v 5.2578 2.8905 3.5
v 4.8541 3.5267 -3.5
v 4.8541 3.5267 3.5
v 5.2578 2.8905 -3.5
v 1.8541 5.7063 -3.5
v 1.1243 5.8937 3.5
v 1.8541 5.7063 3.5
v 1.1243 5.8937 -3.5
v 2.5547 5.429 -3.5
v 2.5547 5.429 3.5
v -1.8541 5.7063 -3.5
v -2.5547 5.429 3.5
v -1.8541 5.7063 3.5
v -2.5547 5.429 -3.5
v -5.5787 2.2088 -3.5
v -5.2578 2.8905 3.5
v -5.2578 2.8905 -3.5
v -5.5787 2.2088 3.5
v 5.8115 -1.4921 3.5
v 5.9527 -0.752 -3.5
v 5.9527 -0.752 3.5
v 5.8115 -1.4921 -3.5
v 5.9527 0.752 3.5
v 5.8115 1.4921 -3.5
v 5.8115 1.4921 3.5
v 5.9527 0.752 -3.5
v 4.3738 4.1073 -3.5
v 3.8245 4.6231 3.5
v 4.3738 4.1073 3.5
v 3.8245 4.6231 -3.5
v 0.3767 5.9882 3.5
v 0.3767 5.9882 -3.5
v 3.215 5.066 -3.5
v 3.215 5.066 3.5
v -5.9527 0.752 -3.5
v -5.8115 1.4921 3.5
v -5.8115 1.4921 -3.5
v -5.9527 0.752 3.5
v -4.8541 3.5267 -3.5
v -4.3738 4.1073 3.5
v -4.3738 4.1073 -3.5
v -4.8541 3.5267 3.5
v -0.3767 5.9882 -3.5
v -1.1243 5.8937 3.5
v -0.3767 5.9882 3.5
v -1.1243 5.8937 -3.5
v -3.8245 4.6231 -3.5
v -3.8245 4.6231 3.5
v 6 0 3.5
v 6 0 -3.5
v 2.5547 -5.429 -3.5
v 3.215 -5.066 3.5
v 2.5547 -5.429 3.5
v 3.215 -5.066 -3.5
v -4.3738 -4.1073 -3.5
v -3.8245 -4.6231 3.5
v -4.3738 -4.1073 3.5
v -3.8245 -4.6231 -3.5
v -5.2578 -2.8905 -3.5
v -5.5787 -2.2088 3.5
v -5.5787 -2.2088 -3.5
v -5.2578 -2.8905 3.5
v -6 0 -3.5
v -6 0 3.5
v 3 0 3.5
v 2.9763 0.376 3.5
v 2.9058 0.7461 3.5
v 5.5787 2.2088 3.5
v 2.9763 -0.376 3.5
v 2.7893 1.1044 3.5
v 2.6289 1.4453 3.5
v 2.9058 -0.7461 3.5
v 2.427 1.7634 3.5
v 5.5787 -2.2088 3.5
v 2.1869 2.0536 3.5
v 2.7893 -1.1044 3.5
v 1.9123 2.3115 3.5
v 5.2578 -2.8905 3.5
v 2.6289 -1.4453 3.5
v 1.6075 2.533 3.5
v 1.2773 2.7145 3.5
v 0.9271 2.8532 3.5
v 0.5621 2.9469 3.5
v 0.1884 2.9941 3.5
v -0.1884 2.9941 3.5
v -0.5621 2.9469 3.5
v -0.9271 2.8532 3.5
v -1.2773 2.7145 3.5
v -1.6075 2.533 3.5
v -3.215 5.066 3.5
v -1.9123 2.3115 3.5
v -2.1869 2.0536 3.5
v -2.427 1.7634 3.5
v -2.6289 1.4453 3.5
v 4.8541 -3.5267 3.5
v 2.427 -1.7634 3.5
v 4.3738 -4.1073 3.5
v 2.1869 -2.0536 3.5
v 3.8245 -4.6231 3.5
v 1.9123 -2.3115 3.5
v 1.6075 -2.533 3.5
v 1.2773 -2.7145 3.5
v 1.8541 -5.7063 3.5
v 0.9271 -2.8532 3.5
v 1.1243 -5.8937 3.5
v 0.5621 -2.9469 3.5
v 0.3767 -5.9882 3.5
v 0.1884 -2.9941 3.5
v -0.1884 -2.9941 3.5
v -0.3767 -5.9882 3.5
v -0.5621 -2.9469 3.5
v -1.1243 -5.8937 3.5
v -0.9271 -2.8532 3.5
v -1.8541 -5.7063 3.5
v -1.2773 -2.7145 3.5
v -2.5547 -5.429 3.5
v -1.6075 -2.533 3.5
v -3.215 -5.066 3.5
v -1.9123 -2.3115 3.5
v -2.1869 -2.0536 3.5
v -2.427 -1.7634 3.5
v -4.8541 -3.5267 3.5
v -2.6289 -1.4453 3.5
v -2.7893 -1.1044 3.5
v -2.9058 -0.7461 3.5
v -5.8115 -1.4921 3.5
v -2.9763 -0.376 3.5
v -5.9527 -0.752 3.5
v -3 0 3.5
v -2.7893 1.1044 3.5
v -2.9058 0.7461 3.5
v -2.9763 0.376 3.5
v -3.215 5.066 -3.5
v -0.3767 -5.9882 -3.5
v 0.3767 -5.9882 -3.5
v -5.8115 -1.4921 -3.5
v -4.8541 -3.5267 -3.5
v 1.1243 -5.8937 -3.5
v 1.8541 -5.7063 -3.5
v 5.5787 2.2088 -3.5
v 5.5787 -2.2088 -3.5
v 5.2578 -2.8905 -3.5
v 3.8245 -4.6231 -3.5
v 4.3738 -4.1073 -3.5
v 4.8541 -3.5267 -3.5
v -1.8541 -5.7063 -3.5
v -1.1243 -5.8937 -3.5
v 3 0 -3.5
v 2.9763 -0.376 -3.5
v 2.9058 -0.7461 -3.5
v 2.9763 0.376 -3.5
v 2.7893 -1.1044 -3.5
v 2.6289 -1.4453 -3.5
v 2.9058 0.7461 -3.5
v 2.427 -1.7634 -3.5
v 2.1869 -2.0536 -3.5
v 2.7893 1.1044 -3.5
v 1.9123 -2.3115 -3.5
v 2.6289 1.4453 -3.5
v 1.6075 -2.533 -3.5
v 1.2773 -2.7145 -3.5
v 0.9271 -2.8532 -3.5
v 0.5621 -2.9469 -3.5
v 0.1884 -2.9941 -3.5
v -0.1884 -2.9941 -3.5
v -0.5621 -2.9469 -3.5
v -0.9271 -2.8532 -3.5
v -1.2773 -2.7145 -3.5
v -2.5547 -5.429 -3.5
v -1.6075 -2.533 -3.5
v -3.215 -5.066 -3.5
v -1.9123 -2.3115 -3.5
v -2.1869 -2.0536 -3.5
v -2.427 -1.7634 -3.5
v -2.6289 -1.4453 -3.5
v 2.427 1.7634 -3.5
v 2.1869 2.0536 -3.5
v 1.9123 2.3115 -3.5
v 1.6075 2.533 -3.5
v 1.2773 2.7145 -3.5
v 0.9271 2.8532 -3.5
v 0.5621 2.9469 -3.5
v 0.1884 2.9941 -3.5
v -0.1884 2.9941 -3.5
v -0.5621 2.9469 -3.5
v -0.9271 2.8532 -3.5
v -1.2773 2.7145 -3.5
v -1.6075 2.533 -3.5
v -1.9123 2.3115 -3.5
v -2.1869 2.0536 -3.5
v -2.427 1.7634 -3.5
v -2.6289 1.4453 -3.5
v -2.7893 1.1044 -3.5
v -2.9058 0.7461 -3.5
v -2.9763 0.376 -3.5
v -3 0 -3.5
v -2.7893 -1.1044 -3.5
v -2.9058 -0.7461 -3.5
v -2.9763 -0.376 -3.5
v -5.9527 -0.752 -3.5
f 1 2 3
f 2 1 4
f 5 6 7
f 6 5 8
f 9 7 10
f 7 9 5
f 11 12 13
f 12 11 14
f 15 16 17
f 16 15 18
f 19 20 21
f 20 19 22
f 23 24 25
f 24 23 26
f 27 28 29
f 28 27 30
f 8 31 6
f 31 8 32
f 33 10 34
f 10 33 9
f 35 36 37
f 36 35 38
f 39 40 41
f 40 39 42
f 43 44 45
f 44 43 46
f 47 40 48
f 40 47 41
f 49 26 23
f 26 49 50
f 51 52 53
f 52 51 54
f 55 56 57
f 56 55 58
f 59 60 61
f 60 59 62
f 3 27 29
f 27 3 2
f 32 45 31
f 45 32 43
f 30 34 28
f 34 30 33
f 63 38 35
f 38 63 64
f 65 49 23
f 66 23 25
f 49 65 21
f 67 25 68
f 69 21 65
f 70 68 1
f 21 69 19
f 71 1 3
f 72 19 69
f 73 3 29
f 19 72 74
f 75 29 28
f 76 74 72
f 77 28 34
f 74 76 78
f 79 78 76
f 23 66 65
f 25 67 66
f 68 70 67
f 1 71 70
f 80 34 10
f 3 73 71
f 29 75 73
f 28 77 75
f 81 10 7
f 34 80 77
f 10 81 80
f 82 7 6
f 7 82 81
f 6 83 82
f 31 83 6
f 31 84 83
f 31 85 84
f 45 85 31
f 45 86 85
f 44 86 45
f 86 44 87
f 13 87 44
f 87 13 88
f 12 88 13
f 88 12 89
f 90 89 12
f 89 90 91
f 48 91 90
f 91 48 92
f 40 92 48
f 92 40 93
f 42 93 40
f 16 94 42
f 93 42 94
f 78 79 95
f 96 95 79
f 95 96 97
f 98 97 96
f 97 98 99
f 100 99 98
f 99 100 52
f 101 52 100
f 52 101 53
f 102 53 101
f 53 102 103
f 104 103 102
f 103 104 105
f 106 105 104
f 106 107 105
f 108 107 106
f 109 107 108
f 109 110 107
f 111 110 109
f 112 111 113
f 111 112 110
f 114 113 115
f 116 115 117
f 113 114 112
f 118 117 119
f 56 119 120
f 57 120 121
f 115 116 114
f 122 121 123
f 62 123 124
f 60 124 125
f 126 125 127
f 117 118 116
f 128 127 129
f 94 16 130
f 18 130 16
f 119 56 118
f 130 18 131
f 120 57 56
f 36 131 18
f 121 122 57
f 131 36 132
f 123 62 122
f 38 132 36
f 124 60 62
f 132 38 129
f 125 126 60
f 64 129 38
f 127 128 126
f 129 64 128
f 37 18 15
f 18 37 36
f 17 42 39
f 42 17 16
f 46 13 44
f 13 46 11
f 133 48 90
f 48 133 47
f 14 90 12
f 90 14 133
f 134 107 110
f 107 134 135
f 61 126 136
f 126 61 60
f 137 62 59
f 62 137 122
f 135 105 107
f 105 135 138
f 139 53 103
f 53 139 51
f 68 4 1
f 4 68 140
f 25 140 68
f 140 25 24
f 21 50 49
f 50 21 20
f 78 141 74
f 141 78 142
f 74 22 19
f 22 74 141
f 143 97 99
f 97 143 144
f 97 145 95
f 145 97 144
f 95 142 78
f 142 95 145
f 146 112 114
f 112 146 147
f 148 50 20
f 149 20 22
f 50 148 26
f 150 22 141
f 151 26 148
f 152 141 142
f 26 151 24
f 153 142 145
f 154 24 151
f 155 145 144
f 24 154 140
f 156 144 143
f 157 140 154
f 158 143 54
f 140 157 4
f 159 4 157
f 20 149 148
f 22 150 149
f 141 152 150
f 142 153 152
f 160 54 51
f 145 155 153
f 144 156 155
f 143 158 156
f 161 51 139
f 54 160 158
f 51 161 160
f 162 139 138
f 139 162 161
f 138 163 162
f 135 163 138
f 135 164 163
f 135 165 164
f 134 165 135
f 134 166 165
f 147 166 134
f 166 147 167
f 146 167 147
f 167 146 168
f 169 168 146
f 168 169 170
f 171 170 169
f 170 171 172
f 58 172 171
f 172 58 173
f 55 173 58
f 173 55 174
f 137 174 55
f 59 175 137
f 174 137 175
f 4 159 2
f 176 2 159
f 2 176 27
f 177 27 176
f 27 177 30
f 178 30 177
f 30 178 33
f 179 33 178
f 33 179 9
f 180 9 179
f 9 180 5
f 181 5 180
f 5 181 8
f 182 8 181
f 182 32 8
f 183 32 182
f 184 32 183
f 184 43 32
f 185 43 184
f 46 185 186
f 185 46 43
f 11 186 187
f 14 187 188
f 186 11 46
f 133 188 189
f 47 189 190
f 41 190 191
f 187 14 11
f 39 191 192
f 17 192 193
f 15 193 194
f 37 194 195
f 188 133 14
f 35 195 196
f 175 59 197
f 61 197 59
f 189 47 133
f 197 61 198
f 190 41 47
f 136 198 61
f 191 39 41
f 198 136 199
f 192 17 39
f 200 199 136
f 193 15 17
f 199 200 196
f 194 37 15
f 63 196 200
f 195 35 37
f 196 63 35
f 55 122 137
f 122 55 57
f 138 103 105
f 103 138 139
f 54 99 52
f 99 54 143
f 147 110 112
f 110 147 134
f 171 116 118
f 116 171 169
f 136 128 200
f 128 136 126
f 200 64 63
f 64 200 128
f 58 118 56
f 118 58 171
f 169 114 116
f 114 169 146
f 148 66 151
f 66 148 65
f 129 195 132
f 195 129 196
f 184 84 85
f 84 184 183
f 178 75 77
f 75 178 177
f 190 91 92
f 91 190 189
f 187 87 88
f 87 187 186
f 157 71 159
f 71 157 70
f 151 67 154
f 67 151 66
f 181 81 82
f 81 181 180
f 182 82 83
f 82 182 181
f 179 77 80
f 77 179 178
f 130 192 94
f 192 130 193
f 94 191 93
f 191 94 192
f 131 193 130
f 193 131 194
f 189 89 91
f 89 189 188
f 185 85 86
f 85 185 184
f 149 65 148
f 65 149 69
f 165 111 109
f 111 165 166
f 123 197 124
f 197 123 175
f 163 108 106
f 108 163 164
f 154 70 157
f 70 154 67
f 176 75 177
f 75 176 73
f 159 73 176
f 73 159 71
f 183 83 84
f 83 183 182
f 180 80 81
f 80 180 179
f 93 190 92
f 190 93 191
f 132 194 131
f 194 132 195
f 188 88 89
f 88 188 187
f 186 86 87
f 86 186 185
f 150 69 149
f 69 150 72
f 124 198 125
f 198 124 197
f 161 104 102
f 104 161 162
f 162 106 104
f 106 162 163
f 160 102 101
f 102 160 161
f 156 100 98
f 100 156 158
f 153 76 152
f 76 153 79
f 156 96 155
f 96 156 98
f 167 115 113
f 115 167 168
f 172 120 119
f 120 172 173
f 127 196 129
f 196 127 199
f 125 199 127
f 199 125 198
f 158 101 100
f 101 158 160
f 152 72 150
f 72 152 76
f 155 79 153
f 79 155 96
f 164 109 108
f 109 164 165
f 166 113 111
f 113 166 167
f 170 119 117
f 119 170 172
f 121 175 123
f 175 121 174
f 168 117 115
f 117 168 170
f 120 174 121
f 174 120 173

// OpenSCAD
$fn = 50;


difference() {
	union() {
		translate(v = [0, 0, -3.5000000000]) {
			cylinder(h = 7, r = 6.0000000000);
		}
	}
	union() {
		translate(v = [0, 0, -100.0000000000]) {
			cylinder(h = 200, r = 3);
		}
	}
}
